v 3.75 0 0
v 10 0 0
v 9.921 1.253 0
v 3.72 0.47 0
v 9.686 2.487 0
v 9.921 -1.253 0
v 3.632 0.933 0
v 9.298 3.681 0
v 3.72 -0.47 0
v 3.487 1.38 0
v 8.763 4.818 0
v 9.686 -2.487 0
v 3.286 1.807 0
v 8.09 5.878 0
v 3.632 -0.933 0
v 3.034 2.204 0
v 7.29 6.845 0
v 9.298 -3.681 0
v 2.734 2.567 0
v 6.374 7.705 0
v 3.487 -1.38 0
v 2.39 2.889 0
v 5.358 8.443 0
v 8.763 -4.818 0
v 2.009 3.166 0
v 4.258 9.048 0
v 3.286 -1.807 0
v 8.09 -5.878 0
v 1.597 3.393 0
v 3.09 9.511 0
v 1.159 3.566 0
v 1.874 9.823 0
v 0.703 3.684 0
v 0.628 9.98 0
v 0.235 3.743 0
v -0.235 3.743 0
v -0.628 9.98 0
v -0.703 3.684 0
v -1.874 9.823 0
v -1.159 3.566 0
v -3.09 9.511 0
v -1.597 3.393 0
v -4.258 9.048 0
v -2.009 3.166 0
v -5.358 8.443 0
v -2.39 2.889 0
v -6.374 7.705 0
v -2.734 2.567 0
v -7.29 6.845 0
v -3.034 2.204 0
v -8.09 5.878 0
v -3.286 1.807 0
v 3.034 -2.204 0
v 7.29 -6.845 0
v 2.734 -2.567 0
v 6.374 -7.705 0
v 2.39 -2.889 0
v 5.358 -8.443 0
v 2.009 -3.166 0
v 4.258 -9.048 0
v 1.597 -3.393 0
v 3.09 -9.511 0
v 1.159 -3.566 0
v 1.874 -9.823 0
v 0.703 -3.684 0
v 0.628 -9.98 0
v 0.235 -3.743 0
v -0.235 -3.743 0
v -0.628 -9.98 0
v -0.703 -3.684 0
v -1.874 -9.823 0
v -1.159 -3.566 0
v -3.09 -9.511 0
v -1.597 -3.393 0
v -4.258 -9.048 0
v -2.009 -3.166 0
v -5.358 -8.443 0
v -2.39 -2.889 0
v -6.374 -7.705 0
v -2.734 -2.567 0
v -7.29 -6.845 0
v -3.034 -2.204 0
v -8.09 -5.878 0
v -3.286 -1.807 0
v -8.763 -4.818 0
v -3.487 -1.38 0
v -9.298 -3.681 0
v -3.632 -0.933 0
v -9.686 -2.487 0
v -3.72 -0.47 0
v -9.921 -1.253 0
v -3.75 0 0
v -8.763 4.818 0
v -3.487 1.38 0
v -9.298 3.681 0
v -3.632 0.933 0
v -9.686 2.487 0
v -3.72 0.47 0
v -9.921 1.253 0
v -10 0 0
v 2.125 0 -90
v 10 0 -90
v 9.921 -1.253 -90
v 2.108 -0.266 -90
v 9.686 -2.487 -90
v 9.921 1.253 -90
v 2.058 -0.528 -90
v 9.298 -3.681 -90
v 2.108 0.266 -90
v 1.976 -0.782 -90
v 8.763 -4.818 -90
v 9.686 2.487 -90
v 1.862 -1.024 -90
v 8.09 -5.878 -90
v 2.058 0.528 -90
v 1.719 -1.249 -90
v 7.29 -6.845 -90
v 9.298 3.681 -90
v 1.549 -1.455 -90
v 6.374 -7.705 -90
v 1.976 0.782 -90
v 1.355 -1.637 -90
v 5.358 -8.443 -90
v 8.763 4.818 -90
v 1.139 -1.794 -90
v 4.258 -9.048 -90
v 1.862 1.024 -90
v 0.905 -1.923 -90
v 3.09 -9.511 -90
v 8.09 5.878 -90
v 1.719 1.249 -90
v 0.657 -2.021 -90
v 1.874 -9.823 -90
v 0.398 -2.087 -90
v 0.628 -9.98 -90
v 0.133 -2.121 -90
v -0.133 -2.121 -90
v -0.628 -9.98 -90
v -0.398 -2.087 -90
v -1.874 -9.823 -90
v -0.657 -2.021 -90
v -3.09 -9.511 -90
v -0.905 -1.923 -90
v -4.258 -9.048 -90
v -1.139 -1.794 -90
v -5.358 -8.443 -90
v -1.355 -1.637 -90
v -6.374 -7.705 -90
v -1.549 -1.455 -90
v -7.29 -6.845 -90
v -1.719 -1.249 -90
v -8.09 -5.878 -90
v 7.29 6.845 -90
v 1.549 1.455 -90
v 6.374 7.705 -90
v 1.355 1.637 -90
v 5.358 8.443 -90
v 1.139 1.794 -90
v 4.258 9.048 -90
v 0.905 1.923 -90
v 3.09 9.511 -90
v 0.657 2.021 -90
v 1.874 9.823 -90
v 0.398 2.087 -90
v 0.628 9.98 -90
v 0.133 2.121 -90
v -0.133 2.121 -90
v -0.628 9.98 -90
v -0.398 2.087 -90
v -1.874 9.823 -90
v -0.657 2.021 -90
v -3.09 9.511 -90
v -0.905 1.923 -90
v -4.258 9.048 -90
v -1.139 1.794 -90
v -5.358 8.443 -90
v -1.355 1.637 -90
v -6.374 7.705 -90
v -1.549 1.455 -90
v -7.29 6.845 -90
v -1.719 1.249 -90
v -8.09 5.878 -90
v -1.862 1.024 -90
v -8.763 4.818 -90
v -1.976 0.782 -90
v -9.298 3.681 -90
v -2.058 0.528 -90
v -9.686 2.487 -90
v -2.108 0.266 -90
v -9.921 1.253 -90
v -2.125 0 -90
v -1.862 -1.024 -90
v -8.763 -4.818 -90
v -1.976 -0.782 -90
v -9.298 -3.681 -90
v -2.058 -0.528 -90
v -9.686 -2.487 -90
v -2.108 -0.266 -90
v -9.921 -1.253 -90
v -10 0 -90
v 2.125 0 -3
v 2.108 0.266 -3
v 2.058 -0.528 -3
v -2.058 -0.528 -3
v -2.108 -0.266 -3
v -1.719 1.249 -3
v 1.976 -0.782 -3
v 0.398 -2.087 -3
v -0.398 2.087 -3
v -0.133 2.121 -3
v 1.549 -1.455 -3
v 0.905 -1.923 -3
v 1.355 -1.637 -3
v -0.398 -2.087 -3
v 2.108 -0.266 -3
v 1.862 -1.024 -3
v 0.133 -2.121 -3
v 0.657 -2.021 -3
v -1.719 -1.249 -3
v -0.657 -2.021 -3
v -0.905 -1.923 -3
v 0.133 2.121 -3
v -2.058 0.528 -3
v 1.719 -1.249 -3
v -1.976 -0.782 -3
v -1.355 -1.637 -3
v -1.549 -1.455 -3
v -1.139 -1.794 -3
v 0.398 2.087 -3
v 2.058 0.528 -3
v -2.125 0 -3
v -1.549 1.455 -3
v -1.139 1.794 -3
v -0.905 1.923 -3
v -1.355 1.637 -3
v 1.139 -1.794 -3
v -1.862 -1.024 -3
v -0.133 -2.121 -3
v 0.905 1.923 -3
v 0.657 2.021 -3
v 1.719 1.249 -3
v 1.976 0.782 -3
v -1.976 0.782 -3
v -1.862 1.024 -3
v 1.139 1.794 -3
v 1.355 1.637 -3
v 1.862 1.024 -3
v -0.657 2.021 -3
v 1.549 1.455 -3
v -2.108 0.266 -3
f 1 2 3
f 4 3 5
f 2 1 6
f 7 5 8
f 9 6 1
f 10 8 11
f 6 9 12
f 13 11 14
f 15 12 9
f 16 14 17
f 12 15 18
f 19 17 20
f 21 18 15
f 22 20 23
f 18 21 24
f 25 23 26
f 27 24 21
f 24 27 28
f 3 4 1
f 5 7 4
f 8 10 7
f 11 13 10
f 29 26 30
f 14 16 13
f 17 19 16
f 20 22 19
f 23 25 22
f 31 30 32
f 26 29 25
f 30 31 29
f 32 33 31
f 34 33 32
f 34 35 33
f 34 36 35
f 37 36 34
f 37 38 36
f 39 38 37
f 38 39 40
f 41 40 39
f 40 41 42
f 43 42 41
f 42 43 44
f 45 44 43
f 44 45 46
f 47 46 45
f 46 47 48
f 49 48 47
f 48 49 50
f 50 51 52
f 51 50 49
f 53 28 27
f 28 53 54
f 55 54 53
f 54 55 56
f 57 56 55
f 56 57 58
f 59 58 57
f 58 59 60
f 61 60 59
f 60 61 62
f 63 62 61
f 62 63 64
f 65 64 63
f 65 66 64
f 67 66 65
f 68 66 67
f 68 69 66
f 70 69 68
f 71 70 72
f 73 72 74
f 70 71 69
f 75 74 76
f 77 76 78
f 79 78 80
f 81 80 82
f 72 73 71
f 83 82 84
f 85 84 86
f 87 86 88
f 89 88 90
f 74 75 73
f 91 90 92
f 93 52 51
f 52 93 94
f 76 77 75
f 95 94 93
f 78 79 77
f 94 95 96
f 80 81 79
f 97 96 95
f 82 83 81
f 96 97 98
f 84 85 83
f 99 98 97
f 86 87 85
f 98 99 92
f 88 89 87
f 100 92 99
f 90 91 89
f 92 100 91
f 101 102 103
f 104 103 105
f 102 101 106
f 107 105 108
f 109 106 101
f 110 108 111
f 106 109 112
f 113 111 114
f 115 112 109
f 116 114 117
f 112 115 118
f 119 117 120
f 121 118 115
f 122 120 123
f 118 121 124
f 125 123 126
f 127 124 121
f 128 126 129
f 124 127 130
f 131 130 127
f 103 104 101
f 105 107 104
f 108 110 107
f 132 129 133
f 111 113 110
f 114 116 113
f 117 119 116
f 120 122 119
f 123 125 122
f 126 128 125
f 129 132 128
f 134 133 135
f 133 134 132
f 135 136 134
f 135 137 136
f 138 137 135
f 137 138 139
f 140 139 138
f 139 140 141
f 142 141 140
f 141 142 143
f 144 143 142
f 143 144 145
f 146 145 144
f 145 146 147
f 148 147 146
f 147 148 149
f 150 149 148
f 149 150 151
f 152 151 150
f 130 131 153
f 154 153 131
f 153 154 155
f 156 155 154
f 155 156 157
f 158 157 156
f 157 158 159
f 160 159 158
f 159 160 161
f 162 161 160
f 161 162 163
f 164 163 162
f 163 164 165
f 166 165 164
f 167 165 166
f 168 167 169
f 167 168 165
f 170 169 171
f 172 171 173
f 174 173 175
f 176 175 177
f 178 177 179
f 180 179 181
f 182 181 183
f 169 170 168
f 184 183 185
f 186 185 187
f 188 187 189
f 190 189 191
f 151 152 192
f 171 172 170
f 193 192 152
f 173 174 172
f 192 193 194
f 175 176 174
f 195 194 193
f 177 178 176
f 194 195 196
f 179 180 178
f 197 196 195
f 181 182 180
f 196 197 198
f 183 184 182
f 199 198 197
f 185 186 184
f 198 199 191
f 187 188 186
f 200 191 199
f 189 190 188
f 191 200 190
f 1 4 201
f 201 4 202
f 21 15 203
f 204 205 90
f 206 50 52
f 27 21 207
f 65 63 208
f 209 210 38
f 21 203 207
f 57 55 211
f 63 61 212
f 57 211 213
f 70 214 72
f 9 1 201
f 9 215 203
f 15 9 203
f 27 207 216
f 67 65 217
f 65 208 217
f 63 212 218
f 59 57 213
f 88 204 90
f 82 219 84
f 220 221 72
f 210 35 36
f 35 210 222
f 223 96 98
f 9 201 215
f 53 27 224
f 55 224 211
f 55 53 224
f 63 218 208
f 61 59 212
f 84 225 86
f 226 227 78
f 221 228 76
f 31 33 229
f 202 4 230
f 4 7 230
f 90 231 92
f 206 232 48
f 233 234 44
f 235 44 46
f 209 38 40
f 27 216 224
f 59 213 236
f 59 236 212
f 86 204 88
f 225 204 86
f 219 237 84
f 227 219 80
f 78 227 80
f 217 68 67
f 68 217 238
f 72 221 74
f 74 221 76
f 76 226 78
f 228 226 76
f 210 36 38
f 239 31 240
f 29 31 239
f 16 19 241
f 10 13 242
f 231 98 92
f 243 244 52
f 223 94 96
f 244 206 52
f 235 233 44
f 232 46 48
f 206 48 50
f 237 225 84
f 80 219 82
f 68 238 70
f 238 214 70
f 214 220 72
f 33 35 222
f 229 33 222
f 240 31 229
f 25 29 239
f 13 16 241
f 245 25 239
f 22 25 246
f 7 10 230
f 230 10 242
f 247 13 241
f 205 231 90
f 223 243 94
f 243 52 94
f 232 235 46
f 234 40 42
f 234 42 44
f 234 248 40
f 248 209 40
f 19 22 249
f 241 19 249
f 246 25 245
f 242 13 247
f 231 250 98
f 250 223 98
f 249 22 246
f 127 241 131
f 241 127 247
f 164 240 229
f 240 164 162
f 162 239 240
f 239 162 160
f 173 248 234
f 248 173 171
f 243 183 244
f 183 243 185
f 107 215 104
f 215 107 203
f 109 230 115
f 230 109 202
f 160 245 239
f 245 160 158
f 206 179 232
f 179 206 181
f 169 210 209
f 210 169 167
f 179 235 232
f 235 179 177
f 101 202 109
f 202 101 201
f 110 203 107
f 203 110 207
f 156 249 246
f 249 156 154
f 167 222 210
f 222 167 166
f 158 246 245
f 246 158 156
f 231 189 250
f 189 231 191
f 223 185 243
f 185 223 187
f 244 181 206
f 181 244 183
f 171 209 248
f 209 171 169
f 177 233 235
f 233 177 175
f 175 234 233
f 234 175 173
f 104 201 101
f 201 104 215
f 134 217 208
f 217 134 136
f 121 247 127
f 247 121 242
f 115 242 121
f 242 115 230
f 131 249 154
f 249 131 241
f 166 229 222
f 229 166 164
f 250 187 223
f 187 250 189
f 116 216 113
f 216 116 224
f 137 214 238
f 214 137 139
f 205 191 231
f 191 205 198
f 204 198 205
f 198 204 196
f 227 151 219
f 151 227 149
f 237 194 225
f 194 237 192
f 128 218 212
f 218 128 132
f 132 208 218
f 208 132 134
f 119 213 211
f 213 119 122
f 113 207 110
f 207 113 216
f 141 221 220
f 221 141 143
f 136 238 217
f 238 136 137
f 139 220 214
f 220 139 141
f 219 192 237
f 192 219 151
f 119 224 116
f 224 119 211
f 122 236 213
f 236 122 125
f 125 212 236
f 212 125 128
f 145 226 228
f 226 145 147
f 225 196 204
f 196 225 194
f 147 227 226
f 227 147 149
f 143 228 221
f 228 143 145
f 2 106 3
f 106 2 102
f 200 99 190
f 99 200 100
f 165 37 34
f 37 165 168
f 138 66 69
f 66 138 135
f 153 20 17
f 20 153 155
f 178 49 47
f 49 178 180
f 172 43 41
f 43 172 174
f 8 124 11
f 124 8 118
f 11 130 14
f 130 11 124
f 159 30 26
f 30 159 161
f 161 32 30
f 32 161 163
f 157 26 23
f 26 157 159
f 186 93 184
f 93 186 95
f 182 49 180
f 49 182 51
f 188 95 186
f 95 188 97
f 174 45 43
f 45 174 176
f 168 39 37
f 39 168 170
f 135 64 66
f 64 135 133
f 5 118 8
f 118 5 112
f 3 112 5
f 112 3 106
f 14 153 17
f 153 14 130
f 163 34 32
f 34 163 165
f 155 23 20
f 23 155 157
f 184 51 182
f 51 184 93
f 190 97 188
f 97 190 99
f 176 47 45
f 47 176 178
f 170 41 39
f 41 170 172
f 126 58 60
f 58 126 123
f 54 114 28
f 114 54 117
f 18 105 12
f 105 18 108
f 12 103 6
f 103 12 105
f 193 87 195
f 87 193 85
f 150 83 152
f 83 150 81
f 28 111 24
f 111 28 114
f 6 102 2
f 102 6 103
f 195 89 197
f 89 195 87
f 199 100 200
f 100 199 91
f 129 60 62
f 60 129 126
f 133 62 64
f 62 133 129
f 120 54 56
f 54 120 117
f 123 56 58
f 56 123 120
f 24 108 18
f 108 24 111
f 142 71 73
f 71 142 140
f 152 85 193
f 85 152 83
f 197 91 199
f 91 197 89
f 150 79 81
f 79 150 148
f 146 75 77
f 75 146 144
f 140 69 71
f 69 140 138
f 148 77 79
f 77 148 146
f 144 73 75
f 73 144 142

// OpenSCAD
$fn = 50;


difference() {
	union() {
		translate(v = [0, 0, -90.0000000000]) {
			cylinder(h = 90, r = 10.0000000000);
		}
		cylinder(h = 0, r = 20.0000000000);
	}
	union() {
		translate(v = [0, 0, 0]) {
			rotate(a = [0, 0, 0]) {
				difference() {
					union() {
						#translate(v = [0, 0, -90.0000000000]) {
							cylinder(h = 90, r = 2.0000000000);
						}
						#translate(v = [0, 0, -3]) {
							cylinder(h = 3, r = 10.0000000000, r1 = 2.1250000000, r2 = 3.7500000000);
						}
						#translate(v = [0, 0, -90.0000000000]) {
							cylinder(h = 90, r = 2.1250000000);
						}
						#translate(v = [0, 0, -90.0000000000]) {
							cylinder(h = 90, r = 2.0000000000);
						}
					}
					union();
				}
			}
		}
	}
}
